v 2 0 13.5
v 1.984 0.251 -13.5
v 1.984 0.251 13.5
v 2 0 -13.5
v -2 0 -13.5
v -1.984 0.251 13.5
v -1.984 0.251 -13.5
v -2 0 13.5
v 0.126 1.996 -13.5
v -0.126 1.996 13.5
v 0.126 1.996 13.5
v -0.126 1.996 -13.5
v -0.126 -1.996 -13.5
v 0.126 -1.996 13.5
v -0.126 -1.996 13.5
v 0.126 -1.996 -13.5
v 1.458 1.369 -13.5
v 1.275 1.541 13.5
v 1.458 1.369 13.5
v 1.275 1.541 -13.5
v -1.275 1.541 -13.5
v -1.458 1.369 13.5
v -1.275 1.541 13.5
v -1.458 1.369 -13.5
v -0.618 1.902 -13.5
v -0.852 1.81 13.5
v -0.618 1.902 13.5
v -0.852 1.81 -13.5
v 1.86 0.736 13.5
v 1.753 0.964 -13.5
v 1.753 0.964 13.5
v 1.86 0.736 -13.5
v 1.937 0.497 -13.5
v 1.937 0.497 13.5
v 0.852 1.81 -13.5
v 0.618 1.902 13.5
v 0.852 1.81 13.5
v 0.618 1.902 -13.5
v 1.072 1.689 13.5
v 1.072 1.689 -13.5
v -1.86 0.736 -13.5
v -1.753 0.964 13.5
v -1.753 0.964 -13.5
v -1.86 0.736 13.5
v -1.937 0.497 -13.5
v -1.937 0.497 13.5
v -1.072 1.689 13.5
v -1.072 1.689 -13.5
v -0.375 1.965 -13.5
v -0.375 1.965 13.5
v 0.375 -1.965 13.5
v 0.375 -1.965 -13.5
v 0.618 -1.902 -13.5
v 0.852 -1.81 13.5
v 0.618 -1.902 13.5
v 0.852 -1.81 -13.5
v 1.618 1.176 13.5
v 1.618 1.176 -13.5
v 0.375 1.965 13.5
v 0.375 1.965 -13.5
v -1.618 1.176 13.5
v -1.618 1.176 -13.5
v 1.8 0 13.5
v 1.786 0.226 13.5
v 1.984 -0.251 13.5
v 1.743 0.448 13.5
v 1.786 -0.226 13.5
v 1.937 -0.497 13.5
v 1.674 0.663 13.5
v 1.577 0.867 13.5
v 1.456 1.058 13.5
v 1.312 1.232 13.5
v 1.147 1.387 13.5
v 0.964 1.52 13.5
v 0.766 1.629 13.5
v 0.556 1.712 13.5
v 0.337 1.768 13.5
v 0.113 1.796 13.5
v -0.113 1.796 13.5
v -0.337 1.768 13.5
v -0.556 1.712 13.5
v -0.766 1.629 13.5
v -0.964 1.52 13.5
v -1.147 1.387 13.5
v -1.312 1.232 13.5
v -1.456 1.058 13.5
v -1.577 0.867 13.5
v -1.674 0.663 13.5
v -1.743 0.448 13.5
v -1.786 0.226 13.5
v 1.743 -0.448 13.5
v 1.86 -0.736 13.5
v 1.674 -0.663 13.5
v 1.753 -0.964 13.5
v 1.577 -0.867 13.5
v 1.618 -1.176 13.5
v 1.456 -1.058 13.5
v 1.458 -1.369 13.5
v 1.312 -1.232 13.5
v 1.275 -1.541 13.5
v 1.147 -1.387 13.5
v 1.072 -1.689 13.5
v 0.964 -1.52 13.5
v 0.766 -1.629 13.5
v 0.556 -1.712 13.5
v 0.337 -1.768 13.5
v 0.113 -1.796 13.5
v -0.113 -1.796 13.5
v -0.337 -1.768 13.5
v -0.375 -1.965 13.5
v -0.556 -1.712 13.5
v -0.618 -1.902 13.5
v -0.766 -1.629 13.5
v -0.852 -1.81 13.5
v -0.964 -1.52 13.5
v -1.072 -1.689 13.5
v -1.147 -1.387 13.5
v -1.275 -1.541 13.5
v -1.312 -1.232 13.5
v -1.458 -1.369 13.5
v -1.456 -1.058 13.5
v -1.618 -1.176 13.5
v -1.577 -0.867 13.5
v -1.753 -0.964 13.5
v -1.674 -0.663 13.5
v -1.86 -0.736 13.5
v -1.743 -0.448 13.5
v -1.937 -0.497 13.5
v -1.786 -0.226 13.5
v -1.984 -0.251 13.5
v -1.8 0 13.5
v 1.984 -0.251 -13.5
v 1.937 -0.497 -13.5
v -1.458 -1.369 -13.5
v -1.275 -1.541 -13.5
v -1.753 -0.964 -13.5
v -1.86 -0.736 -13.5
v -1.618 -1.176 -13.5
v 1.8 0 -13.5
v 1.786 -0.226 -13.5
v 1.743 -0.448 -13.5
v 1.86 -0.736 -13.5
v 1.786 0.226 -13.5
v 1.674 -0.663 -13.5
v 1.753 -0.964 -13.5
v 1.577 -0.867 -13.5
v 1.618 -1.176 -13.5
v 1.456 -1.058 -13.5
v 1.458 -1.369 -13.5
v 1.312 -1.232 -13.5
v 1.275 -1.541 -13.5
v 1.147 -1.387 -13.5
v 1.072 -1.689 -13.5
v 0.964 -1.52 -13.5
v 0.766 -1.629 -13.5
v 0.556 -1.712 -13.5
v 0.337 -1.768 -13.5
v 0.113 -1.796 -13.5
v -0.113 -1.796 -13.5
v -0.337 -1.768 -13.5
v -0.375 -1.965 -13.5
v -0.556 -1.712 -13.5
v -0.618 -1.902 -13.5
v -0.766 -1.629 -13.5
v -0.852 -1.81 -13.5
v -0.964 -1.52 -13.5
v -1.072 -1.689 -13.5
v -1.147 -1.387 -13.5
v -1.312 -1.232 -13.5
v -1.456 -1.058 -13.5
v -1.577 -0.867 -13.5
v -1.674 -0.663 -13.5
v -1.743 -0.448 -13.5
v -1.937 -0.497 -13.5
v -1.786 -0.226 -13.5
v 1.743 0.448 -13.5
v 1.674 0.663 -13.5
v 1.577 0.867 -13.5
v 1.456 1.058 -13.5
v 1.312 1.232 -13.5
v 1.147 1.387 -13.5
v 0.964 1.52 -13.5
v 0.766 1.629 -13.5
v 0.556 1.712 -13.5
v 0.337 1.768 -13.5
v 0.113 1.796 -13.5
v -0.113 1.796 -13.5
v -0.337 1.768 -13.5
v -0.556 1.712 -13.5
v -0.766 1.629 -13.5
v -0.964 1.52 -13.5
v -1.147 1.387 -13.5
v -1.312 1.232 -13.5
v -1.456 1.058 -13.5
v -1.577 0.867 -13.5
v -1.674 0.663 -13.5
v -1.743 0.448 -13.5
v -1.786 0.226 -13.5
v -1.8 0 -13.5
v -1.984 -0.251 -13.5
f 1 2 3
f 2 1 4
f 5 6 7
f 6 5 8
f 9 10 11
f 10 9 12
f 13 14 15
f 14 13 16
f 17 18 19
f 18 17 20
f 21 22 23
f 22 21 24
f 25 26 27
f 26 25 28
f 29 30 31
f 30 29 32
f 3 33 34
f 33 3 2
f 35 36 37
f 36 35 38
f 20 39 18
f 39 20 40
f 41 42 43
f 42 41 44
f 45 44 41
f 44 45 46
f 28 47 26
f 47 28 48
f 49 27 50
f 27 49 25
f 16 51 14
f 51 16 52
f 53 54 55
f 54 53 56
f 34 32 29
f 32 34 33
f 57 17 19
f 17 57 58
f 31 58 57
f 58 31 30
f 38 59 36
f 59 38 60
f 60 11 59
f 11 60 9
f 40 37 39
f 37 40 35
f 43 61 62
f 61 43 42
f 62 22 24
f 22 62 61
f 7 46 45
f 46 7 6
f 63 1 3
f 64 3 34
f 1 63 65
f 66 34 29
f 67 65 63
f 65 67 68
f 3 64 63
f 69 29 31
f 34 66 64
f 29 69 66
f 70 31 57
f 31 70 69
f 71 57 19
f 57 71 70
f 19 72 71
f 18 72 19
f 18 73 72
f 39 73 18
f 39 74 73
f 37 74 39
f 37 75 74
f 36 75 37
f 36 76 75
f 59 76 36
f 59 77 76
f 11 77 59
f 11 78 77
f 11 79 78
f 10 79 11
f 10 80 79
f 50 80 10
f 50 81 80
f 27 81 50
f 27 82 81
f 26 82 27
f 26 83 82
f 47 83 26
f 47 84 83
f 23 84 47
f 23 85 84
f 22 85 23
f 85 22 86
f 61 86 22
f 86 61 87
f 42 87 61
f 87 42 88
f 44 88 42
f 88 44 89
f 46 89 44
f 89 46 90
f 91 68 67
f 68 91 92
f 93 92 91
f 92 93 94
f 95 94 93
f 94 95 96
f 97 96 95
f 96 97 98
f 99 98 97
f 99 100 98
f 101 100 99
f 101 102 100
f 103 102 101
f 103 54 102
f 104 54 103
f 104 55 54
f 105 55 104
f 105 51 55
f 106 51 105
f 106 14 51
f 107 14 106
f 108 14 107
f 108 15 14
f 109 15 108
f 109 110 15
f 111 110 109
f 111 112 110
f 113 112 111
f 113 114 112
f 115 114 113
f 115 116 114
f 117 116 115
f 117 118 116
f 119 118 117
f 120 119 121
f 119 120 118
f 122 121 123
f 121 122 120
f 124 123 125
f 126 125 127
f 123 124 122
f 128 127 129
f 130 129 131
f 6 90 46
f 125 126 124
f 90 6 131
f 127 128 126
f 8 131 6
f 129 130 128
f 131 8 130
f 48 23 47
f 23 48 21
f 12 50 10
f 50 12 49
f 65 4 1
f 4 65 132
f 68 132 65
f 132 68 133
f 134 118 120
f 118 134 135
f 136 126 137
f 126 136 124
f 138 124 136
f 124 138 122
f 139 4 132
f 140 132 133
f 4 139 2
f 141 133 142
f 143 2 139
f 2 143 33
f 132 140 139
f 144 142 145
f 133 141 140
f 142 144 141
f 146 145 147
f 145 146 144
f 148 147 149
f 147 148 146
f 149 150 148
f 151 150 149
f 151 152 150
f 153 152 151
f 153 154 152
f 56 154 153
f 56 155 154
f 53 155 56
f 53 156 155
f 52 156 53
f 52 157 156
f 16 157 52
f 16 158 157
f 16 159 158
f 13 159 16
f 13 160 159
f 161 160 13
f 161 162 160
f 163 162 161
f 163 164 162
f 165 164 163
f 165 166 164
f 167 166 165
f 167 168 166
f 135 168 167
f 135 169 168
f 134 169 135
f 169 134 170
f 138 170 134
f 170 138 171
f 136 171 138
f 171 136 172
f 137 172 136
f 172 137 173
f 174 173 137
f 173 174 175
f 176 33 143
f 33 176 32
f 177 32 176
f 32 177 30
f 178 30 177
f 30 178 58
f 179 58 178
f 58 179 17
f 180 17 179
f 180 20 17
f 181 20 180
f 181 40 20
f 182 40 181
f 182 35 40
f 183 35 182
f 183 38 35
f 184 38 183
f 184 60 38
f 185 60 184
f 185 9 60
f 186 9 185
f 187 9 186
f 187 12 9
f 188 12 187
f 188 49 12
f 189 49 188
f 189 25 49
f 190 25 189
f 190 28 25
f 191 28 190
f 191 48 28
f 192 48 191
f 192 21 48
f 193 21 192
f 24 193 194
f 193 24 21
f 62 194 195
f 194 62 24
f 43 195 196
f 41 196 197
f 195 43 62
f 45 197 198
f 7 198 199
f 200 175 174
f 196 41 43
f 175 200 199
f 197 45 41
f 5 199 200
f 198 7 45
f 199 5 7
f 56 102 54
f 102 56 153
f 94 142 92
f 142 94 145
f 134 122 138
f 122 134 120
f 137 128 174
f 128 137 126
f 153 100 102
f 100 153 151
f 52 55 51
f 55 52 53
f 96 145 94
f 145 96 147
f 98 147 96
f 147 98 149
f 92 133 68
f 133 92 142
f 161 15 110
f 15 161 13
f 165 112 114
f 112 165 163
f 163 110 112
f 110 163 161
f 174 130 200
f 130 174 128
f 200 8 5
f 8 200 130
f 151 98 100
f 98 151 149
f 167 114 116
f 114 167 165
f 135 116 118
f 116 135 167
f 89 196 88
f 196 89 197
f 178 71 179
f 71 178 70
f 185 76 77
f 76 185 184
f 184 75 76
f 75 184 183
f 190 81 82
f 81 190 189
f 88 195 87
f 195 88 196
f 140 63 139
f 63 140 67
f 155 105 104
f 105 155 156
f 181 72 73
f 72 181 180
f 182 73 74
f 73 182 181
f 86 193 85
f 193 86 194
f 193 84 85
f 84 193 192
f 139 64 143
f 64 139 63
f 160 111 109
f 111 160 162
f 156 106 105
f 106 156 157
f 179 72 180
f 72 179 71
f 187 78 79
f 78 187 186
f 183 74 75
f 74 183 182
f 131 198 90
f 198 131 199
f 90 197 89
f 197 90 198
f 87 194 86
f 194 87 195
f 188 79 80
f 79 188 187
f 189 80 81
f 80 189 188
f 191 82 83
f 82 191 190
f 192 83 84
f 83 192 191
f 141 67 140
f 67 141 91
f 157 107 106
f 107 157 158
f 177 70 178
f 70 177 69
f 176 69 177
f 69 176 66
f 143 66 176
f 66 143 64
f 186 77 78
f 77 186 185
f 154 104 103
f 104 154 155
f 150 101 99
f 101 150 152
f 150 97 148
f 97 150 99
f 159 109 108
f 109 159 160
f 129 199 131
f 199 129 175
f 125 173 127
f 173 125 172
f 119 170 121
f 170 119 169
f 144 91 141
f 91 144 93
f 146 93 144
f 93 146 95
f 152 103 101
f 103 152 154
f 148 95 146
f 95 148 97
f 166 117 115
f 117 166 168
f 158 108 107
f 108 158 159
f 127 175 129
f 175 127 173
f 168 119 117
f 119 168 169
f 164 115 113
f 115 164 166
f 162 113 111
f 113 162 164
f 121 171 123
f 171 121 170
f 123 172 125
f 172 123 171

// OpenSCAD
$fn = 50;


difference() {
	union() {
		translate(v = [0, 0, -13.5000000000]) {
			cylinder(h = 27, r = 2.0000000000);
		}
	}
	union() {
		translate(v = [0, 0, -100.0000000000]) {
			cylinder(h = 200, r = 1.8000000000);
		}
	}
}
